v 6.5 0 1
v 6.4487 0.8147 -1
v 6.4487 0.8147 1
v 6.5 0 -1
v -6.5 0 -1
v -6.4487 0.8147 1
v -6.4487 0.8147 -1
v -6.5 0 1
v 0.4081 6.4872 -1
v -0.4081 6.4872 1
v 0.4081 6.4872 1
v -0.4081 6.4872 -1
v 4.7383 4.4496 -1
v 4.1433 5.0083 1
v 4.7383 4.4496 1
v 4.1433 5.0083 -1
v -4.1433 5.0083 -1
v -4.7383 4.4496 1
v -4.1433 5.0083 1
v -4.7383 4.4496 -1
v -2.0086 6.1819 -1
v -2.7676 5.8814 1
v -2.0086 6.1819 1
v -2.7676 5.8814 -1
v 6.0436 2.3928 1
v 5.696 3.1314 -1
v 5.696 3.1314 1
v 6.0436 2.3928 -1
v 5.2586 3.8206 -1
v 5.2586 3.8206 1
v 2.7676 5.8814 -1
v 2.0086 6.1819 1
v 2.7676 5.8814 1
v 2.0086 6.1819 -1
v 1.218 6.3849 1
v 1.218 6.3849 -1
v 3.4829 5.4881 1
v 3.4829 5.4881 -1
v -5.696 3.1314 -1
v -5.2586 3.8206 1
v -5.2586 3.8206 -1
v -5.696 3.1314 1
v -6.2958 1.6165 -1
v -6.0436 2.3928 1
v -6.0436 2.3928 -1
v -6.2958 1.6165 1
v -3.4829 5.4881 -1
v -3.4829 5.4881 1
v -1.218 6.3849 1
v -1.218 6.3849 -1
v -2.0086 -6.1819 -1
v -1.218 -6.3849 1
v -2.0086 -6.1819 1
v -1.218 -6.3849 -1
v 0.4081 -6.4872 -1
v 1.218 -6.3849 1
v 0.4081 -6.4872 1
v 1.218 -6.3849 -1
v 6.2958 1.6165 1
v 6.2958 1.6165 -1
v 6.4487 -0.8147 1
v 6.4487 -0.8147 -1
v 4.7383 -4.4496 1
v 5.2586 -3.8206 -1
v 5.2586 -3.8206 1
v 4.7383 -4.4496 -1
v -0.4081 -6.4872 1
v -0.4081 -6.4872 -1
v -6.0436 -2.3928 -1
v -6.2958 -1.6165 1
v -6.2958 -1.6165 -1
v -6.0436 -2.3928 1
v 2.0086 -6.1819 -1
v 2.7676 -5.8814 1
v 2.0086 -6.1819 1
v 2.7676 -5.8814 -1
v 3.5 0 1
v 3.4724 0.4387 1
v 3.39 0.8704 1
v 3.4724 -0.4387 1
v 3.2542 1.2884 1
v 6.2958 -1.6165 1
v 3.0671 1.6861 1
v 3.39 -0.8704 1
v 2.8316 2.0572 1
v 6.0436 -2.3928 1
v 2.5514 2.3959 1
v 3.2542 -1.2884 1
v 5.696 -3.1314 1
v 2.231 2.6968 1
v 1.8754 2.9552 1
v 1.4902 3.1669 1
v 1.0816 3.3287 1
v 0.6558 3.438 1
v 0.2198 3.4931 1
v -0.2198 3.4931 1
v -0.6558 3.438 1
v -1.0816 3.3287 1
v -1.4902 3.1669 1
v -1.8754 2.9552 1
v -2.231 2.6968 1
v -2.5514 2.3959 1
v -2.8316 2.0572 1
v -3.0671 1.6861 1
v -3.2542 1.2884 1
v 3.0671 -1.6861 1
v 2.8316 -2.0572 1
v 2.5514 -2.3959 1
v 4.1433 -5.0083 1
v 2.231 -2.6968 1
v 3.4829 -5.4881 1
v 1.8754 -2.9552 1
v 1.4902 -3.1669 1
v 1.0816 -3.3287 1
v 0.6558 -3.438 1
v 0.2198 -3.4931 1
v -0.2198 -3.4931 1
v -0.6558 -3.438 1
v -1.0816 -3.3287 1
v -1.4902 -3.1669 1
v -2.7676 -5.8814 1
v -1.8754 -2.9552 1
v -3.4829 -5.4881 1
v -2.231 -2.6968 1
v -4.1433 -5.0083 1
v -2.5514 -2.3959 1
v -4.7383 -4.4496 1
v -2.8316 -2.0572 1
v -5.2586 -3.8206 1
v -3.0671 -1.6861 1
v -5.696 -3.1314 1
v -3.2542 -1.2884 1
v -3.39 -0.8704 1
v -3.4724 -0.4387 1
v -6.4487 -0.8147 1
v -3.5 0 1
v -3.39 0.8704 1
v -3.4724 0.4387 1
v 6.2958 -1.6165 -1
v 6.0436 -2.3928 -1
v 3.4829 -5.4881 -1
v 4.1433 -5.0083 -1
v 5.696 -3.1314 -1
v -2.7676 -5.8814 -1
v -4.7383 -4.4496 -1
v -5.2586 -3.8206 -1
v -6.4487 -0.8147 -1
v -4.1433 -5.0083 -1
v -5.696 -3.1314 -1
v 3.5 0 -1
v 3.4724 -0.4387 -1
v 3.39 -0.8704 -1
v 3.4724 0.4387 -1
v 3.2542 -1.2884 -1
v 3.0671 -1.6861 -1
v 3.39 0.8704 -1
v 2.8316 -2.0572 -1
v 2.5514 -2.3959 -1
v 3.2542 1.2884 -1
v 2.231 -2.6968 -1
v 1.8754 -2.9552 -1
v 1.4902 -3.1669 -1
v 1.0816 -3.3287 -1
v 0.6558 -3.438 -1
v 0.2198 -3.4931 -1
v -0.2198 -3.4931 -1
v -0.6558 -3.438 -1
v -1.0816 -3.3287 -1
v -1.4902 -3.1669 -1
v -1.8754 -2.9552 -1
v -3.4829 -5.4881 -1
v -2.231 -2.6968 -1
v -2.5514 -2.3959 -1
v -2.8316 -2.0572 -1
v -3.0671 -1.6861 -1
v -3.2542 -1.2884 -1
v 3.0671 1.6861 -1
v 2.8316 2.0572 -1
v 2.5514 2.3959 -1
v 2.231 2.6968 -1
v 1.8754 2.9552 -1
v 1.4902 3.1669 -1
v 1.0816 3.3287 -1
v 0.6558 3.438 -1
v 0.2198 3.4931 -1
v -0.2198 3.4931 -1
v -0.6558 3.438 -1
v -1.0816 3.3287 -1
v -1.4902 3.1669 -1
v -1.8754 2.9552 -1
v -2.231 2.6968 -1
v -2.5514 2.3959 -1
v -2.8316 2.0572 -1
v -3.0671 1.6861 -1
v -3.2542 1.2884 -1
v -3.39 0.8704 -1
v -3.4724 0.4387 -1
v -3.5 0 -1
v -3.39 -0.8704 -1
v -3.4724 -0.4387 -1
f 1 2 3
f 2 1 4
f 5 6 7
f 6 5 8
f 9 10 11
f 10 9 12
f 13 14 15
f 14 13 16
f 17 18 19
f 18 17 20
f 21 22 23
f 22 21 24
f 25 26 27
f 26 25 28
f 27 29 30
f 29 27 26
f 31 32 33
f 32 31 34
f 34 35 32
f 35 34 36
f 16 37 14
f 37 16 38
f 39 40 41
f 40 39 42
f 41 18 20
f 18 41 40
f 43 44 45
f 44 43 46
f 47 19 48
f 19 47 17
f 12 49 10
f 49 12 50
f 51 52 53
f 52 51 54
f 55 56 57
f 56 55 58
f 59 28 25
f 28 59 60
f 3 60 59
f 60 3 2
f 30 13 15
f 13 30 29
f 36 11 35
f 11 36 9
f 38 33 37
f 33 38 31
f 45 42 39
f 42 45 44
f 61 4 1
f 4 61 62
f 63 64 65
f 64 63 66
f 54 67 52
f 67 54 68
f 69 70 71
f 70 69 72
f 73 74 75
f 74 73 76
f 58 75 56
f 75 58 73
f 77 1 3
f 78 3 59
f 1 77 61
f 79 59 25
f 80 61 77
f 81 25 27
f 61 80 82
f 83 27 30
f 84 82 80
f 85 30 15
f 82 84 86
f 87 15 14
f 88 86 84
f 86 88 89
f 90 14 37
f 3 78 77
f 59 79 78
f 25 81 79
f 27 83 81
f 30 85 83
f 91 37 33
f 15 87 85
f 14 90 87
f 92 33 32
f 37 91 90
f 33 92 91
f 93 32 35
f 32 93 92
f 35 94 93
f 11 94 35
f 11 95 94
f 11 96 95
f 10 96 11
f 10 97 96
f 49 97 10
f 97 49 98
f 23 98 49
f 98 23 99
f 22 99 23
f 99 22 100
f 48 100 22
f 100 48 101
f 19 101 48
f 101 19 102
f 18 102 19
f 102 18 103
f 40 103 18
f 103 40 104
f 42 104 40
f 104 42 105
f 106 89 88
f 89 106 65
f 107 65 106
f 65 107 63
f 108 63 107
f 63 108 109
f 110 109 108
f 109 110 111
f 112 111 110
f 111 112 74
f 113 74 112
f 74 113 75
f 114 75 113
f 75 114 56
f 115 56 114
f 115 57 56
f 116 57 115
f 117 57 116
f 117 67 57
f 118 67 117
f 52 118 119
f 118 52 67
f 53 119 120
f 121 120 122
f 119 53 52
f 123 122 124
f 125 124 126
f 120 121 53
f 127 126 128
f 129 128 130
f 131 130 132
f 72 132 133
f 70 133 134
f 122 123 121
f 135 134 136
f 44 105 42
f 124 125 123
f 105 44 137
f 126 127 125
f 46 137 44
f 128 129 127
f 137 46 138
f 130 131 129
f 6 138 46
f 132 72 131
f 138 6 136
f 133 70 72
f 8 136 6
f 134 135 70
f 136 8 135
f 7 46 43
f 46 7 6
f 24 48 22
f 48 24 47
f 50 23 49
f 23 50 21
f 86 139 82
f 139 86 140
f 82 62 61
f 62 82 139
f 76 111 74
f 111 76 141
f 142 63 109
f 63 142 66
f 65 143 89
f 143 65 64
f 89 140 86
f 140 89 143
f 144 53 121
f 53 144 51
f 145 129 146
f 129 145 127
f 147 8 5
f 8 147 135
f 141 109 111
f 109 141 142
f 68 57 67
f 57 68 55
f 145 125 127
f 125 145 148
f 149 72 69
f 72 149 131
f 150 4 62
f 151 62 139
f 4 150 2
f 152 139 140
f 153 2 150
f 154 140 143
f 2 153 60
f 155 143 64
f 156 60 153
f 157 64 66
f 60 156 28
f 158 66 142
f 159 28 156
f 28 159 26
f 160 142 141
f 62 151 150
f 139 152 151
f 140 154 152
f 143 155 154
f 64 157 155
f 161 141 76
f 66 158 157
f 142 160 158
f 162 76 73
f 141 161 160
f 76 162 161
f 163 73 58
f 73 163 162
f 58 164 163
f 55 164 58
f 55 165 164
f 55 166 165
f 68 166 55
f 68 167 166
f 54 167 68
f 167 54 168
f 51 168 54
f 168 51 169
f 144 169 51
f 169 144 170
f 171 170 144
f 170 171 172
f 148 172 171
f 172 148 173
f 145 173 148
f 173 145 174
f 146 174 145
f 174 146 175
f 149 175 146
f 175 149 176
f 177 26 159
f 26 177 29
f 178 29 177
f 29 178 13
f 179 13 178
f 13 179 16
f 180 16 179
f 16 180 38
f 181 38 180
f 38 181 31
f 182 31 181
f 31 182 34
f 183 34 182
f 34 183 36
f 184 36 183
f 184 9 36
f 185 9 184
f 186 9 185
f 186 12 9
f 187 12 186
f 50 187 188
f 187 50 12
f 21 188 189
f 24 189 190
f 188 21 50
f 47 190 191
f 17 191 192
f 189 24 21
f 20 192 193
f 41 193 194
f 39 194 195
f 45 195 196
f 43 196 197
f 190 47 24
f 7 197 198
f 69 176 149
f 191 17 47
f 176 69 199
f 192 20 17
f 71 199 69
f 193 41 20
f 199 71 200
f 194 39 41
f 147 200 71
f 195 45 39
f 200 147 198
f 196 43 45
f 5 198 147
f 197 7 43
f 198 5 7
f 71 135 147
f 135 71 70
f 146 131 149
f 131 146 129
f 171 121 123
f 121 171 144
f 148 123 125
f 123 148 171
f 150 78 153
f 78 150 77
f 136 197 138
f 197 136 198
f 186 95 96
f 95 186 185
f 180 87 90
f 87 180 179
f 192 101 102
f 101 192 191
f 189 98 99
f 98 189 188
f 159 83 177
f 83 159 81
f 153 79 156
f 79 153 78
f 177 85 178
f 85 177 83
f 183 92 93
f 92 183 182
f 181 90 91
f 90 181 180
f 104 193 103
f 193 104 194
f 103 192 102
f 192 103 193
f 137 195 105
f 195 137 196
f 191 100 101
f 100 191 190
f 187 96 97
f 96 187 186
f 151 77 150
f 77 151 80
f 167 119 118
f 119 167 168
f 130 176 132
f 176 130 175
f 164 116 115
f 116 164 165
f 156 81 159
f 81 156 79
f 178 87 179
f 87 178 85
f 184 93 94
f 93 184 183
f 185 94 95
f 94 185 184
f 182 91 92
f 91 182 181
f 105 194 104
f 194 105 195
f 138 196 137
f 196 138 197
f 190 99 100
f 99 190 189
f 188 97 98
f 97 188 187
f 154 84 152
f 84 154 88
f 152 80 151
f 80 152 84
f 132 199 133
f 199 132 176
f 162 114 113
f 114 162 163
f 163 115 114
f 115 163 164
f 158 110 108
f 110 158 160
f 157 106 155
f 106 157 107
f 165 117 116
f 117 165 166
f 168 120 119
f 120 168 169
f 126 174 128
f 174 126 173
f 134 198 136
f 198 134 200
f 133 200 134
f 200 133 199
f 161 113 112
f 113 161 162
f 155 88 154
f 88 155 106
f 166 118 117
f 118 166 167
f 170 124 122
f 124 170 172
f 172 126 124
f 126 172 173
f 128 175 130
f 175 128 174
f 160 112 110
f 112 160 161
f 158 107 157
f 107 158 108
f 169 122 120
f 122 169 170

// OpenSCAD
$fn = 50;


difference() {
	union() {
		translate(v = [0, 0, -1.0000000000]) {
			cylinder(h = 2, r = 6.5000000000);
		}
	}
	union() {
		translate(v = [0, 0, -100.0000000000]) {
			cylinder(h = 200, r = 3.5000000000);
		}
	}
}
